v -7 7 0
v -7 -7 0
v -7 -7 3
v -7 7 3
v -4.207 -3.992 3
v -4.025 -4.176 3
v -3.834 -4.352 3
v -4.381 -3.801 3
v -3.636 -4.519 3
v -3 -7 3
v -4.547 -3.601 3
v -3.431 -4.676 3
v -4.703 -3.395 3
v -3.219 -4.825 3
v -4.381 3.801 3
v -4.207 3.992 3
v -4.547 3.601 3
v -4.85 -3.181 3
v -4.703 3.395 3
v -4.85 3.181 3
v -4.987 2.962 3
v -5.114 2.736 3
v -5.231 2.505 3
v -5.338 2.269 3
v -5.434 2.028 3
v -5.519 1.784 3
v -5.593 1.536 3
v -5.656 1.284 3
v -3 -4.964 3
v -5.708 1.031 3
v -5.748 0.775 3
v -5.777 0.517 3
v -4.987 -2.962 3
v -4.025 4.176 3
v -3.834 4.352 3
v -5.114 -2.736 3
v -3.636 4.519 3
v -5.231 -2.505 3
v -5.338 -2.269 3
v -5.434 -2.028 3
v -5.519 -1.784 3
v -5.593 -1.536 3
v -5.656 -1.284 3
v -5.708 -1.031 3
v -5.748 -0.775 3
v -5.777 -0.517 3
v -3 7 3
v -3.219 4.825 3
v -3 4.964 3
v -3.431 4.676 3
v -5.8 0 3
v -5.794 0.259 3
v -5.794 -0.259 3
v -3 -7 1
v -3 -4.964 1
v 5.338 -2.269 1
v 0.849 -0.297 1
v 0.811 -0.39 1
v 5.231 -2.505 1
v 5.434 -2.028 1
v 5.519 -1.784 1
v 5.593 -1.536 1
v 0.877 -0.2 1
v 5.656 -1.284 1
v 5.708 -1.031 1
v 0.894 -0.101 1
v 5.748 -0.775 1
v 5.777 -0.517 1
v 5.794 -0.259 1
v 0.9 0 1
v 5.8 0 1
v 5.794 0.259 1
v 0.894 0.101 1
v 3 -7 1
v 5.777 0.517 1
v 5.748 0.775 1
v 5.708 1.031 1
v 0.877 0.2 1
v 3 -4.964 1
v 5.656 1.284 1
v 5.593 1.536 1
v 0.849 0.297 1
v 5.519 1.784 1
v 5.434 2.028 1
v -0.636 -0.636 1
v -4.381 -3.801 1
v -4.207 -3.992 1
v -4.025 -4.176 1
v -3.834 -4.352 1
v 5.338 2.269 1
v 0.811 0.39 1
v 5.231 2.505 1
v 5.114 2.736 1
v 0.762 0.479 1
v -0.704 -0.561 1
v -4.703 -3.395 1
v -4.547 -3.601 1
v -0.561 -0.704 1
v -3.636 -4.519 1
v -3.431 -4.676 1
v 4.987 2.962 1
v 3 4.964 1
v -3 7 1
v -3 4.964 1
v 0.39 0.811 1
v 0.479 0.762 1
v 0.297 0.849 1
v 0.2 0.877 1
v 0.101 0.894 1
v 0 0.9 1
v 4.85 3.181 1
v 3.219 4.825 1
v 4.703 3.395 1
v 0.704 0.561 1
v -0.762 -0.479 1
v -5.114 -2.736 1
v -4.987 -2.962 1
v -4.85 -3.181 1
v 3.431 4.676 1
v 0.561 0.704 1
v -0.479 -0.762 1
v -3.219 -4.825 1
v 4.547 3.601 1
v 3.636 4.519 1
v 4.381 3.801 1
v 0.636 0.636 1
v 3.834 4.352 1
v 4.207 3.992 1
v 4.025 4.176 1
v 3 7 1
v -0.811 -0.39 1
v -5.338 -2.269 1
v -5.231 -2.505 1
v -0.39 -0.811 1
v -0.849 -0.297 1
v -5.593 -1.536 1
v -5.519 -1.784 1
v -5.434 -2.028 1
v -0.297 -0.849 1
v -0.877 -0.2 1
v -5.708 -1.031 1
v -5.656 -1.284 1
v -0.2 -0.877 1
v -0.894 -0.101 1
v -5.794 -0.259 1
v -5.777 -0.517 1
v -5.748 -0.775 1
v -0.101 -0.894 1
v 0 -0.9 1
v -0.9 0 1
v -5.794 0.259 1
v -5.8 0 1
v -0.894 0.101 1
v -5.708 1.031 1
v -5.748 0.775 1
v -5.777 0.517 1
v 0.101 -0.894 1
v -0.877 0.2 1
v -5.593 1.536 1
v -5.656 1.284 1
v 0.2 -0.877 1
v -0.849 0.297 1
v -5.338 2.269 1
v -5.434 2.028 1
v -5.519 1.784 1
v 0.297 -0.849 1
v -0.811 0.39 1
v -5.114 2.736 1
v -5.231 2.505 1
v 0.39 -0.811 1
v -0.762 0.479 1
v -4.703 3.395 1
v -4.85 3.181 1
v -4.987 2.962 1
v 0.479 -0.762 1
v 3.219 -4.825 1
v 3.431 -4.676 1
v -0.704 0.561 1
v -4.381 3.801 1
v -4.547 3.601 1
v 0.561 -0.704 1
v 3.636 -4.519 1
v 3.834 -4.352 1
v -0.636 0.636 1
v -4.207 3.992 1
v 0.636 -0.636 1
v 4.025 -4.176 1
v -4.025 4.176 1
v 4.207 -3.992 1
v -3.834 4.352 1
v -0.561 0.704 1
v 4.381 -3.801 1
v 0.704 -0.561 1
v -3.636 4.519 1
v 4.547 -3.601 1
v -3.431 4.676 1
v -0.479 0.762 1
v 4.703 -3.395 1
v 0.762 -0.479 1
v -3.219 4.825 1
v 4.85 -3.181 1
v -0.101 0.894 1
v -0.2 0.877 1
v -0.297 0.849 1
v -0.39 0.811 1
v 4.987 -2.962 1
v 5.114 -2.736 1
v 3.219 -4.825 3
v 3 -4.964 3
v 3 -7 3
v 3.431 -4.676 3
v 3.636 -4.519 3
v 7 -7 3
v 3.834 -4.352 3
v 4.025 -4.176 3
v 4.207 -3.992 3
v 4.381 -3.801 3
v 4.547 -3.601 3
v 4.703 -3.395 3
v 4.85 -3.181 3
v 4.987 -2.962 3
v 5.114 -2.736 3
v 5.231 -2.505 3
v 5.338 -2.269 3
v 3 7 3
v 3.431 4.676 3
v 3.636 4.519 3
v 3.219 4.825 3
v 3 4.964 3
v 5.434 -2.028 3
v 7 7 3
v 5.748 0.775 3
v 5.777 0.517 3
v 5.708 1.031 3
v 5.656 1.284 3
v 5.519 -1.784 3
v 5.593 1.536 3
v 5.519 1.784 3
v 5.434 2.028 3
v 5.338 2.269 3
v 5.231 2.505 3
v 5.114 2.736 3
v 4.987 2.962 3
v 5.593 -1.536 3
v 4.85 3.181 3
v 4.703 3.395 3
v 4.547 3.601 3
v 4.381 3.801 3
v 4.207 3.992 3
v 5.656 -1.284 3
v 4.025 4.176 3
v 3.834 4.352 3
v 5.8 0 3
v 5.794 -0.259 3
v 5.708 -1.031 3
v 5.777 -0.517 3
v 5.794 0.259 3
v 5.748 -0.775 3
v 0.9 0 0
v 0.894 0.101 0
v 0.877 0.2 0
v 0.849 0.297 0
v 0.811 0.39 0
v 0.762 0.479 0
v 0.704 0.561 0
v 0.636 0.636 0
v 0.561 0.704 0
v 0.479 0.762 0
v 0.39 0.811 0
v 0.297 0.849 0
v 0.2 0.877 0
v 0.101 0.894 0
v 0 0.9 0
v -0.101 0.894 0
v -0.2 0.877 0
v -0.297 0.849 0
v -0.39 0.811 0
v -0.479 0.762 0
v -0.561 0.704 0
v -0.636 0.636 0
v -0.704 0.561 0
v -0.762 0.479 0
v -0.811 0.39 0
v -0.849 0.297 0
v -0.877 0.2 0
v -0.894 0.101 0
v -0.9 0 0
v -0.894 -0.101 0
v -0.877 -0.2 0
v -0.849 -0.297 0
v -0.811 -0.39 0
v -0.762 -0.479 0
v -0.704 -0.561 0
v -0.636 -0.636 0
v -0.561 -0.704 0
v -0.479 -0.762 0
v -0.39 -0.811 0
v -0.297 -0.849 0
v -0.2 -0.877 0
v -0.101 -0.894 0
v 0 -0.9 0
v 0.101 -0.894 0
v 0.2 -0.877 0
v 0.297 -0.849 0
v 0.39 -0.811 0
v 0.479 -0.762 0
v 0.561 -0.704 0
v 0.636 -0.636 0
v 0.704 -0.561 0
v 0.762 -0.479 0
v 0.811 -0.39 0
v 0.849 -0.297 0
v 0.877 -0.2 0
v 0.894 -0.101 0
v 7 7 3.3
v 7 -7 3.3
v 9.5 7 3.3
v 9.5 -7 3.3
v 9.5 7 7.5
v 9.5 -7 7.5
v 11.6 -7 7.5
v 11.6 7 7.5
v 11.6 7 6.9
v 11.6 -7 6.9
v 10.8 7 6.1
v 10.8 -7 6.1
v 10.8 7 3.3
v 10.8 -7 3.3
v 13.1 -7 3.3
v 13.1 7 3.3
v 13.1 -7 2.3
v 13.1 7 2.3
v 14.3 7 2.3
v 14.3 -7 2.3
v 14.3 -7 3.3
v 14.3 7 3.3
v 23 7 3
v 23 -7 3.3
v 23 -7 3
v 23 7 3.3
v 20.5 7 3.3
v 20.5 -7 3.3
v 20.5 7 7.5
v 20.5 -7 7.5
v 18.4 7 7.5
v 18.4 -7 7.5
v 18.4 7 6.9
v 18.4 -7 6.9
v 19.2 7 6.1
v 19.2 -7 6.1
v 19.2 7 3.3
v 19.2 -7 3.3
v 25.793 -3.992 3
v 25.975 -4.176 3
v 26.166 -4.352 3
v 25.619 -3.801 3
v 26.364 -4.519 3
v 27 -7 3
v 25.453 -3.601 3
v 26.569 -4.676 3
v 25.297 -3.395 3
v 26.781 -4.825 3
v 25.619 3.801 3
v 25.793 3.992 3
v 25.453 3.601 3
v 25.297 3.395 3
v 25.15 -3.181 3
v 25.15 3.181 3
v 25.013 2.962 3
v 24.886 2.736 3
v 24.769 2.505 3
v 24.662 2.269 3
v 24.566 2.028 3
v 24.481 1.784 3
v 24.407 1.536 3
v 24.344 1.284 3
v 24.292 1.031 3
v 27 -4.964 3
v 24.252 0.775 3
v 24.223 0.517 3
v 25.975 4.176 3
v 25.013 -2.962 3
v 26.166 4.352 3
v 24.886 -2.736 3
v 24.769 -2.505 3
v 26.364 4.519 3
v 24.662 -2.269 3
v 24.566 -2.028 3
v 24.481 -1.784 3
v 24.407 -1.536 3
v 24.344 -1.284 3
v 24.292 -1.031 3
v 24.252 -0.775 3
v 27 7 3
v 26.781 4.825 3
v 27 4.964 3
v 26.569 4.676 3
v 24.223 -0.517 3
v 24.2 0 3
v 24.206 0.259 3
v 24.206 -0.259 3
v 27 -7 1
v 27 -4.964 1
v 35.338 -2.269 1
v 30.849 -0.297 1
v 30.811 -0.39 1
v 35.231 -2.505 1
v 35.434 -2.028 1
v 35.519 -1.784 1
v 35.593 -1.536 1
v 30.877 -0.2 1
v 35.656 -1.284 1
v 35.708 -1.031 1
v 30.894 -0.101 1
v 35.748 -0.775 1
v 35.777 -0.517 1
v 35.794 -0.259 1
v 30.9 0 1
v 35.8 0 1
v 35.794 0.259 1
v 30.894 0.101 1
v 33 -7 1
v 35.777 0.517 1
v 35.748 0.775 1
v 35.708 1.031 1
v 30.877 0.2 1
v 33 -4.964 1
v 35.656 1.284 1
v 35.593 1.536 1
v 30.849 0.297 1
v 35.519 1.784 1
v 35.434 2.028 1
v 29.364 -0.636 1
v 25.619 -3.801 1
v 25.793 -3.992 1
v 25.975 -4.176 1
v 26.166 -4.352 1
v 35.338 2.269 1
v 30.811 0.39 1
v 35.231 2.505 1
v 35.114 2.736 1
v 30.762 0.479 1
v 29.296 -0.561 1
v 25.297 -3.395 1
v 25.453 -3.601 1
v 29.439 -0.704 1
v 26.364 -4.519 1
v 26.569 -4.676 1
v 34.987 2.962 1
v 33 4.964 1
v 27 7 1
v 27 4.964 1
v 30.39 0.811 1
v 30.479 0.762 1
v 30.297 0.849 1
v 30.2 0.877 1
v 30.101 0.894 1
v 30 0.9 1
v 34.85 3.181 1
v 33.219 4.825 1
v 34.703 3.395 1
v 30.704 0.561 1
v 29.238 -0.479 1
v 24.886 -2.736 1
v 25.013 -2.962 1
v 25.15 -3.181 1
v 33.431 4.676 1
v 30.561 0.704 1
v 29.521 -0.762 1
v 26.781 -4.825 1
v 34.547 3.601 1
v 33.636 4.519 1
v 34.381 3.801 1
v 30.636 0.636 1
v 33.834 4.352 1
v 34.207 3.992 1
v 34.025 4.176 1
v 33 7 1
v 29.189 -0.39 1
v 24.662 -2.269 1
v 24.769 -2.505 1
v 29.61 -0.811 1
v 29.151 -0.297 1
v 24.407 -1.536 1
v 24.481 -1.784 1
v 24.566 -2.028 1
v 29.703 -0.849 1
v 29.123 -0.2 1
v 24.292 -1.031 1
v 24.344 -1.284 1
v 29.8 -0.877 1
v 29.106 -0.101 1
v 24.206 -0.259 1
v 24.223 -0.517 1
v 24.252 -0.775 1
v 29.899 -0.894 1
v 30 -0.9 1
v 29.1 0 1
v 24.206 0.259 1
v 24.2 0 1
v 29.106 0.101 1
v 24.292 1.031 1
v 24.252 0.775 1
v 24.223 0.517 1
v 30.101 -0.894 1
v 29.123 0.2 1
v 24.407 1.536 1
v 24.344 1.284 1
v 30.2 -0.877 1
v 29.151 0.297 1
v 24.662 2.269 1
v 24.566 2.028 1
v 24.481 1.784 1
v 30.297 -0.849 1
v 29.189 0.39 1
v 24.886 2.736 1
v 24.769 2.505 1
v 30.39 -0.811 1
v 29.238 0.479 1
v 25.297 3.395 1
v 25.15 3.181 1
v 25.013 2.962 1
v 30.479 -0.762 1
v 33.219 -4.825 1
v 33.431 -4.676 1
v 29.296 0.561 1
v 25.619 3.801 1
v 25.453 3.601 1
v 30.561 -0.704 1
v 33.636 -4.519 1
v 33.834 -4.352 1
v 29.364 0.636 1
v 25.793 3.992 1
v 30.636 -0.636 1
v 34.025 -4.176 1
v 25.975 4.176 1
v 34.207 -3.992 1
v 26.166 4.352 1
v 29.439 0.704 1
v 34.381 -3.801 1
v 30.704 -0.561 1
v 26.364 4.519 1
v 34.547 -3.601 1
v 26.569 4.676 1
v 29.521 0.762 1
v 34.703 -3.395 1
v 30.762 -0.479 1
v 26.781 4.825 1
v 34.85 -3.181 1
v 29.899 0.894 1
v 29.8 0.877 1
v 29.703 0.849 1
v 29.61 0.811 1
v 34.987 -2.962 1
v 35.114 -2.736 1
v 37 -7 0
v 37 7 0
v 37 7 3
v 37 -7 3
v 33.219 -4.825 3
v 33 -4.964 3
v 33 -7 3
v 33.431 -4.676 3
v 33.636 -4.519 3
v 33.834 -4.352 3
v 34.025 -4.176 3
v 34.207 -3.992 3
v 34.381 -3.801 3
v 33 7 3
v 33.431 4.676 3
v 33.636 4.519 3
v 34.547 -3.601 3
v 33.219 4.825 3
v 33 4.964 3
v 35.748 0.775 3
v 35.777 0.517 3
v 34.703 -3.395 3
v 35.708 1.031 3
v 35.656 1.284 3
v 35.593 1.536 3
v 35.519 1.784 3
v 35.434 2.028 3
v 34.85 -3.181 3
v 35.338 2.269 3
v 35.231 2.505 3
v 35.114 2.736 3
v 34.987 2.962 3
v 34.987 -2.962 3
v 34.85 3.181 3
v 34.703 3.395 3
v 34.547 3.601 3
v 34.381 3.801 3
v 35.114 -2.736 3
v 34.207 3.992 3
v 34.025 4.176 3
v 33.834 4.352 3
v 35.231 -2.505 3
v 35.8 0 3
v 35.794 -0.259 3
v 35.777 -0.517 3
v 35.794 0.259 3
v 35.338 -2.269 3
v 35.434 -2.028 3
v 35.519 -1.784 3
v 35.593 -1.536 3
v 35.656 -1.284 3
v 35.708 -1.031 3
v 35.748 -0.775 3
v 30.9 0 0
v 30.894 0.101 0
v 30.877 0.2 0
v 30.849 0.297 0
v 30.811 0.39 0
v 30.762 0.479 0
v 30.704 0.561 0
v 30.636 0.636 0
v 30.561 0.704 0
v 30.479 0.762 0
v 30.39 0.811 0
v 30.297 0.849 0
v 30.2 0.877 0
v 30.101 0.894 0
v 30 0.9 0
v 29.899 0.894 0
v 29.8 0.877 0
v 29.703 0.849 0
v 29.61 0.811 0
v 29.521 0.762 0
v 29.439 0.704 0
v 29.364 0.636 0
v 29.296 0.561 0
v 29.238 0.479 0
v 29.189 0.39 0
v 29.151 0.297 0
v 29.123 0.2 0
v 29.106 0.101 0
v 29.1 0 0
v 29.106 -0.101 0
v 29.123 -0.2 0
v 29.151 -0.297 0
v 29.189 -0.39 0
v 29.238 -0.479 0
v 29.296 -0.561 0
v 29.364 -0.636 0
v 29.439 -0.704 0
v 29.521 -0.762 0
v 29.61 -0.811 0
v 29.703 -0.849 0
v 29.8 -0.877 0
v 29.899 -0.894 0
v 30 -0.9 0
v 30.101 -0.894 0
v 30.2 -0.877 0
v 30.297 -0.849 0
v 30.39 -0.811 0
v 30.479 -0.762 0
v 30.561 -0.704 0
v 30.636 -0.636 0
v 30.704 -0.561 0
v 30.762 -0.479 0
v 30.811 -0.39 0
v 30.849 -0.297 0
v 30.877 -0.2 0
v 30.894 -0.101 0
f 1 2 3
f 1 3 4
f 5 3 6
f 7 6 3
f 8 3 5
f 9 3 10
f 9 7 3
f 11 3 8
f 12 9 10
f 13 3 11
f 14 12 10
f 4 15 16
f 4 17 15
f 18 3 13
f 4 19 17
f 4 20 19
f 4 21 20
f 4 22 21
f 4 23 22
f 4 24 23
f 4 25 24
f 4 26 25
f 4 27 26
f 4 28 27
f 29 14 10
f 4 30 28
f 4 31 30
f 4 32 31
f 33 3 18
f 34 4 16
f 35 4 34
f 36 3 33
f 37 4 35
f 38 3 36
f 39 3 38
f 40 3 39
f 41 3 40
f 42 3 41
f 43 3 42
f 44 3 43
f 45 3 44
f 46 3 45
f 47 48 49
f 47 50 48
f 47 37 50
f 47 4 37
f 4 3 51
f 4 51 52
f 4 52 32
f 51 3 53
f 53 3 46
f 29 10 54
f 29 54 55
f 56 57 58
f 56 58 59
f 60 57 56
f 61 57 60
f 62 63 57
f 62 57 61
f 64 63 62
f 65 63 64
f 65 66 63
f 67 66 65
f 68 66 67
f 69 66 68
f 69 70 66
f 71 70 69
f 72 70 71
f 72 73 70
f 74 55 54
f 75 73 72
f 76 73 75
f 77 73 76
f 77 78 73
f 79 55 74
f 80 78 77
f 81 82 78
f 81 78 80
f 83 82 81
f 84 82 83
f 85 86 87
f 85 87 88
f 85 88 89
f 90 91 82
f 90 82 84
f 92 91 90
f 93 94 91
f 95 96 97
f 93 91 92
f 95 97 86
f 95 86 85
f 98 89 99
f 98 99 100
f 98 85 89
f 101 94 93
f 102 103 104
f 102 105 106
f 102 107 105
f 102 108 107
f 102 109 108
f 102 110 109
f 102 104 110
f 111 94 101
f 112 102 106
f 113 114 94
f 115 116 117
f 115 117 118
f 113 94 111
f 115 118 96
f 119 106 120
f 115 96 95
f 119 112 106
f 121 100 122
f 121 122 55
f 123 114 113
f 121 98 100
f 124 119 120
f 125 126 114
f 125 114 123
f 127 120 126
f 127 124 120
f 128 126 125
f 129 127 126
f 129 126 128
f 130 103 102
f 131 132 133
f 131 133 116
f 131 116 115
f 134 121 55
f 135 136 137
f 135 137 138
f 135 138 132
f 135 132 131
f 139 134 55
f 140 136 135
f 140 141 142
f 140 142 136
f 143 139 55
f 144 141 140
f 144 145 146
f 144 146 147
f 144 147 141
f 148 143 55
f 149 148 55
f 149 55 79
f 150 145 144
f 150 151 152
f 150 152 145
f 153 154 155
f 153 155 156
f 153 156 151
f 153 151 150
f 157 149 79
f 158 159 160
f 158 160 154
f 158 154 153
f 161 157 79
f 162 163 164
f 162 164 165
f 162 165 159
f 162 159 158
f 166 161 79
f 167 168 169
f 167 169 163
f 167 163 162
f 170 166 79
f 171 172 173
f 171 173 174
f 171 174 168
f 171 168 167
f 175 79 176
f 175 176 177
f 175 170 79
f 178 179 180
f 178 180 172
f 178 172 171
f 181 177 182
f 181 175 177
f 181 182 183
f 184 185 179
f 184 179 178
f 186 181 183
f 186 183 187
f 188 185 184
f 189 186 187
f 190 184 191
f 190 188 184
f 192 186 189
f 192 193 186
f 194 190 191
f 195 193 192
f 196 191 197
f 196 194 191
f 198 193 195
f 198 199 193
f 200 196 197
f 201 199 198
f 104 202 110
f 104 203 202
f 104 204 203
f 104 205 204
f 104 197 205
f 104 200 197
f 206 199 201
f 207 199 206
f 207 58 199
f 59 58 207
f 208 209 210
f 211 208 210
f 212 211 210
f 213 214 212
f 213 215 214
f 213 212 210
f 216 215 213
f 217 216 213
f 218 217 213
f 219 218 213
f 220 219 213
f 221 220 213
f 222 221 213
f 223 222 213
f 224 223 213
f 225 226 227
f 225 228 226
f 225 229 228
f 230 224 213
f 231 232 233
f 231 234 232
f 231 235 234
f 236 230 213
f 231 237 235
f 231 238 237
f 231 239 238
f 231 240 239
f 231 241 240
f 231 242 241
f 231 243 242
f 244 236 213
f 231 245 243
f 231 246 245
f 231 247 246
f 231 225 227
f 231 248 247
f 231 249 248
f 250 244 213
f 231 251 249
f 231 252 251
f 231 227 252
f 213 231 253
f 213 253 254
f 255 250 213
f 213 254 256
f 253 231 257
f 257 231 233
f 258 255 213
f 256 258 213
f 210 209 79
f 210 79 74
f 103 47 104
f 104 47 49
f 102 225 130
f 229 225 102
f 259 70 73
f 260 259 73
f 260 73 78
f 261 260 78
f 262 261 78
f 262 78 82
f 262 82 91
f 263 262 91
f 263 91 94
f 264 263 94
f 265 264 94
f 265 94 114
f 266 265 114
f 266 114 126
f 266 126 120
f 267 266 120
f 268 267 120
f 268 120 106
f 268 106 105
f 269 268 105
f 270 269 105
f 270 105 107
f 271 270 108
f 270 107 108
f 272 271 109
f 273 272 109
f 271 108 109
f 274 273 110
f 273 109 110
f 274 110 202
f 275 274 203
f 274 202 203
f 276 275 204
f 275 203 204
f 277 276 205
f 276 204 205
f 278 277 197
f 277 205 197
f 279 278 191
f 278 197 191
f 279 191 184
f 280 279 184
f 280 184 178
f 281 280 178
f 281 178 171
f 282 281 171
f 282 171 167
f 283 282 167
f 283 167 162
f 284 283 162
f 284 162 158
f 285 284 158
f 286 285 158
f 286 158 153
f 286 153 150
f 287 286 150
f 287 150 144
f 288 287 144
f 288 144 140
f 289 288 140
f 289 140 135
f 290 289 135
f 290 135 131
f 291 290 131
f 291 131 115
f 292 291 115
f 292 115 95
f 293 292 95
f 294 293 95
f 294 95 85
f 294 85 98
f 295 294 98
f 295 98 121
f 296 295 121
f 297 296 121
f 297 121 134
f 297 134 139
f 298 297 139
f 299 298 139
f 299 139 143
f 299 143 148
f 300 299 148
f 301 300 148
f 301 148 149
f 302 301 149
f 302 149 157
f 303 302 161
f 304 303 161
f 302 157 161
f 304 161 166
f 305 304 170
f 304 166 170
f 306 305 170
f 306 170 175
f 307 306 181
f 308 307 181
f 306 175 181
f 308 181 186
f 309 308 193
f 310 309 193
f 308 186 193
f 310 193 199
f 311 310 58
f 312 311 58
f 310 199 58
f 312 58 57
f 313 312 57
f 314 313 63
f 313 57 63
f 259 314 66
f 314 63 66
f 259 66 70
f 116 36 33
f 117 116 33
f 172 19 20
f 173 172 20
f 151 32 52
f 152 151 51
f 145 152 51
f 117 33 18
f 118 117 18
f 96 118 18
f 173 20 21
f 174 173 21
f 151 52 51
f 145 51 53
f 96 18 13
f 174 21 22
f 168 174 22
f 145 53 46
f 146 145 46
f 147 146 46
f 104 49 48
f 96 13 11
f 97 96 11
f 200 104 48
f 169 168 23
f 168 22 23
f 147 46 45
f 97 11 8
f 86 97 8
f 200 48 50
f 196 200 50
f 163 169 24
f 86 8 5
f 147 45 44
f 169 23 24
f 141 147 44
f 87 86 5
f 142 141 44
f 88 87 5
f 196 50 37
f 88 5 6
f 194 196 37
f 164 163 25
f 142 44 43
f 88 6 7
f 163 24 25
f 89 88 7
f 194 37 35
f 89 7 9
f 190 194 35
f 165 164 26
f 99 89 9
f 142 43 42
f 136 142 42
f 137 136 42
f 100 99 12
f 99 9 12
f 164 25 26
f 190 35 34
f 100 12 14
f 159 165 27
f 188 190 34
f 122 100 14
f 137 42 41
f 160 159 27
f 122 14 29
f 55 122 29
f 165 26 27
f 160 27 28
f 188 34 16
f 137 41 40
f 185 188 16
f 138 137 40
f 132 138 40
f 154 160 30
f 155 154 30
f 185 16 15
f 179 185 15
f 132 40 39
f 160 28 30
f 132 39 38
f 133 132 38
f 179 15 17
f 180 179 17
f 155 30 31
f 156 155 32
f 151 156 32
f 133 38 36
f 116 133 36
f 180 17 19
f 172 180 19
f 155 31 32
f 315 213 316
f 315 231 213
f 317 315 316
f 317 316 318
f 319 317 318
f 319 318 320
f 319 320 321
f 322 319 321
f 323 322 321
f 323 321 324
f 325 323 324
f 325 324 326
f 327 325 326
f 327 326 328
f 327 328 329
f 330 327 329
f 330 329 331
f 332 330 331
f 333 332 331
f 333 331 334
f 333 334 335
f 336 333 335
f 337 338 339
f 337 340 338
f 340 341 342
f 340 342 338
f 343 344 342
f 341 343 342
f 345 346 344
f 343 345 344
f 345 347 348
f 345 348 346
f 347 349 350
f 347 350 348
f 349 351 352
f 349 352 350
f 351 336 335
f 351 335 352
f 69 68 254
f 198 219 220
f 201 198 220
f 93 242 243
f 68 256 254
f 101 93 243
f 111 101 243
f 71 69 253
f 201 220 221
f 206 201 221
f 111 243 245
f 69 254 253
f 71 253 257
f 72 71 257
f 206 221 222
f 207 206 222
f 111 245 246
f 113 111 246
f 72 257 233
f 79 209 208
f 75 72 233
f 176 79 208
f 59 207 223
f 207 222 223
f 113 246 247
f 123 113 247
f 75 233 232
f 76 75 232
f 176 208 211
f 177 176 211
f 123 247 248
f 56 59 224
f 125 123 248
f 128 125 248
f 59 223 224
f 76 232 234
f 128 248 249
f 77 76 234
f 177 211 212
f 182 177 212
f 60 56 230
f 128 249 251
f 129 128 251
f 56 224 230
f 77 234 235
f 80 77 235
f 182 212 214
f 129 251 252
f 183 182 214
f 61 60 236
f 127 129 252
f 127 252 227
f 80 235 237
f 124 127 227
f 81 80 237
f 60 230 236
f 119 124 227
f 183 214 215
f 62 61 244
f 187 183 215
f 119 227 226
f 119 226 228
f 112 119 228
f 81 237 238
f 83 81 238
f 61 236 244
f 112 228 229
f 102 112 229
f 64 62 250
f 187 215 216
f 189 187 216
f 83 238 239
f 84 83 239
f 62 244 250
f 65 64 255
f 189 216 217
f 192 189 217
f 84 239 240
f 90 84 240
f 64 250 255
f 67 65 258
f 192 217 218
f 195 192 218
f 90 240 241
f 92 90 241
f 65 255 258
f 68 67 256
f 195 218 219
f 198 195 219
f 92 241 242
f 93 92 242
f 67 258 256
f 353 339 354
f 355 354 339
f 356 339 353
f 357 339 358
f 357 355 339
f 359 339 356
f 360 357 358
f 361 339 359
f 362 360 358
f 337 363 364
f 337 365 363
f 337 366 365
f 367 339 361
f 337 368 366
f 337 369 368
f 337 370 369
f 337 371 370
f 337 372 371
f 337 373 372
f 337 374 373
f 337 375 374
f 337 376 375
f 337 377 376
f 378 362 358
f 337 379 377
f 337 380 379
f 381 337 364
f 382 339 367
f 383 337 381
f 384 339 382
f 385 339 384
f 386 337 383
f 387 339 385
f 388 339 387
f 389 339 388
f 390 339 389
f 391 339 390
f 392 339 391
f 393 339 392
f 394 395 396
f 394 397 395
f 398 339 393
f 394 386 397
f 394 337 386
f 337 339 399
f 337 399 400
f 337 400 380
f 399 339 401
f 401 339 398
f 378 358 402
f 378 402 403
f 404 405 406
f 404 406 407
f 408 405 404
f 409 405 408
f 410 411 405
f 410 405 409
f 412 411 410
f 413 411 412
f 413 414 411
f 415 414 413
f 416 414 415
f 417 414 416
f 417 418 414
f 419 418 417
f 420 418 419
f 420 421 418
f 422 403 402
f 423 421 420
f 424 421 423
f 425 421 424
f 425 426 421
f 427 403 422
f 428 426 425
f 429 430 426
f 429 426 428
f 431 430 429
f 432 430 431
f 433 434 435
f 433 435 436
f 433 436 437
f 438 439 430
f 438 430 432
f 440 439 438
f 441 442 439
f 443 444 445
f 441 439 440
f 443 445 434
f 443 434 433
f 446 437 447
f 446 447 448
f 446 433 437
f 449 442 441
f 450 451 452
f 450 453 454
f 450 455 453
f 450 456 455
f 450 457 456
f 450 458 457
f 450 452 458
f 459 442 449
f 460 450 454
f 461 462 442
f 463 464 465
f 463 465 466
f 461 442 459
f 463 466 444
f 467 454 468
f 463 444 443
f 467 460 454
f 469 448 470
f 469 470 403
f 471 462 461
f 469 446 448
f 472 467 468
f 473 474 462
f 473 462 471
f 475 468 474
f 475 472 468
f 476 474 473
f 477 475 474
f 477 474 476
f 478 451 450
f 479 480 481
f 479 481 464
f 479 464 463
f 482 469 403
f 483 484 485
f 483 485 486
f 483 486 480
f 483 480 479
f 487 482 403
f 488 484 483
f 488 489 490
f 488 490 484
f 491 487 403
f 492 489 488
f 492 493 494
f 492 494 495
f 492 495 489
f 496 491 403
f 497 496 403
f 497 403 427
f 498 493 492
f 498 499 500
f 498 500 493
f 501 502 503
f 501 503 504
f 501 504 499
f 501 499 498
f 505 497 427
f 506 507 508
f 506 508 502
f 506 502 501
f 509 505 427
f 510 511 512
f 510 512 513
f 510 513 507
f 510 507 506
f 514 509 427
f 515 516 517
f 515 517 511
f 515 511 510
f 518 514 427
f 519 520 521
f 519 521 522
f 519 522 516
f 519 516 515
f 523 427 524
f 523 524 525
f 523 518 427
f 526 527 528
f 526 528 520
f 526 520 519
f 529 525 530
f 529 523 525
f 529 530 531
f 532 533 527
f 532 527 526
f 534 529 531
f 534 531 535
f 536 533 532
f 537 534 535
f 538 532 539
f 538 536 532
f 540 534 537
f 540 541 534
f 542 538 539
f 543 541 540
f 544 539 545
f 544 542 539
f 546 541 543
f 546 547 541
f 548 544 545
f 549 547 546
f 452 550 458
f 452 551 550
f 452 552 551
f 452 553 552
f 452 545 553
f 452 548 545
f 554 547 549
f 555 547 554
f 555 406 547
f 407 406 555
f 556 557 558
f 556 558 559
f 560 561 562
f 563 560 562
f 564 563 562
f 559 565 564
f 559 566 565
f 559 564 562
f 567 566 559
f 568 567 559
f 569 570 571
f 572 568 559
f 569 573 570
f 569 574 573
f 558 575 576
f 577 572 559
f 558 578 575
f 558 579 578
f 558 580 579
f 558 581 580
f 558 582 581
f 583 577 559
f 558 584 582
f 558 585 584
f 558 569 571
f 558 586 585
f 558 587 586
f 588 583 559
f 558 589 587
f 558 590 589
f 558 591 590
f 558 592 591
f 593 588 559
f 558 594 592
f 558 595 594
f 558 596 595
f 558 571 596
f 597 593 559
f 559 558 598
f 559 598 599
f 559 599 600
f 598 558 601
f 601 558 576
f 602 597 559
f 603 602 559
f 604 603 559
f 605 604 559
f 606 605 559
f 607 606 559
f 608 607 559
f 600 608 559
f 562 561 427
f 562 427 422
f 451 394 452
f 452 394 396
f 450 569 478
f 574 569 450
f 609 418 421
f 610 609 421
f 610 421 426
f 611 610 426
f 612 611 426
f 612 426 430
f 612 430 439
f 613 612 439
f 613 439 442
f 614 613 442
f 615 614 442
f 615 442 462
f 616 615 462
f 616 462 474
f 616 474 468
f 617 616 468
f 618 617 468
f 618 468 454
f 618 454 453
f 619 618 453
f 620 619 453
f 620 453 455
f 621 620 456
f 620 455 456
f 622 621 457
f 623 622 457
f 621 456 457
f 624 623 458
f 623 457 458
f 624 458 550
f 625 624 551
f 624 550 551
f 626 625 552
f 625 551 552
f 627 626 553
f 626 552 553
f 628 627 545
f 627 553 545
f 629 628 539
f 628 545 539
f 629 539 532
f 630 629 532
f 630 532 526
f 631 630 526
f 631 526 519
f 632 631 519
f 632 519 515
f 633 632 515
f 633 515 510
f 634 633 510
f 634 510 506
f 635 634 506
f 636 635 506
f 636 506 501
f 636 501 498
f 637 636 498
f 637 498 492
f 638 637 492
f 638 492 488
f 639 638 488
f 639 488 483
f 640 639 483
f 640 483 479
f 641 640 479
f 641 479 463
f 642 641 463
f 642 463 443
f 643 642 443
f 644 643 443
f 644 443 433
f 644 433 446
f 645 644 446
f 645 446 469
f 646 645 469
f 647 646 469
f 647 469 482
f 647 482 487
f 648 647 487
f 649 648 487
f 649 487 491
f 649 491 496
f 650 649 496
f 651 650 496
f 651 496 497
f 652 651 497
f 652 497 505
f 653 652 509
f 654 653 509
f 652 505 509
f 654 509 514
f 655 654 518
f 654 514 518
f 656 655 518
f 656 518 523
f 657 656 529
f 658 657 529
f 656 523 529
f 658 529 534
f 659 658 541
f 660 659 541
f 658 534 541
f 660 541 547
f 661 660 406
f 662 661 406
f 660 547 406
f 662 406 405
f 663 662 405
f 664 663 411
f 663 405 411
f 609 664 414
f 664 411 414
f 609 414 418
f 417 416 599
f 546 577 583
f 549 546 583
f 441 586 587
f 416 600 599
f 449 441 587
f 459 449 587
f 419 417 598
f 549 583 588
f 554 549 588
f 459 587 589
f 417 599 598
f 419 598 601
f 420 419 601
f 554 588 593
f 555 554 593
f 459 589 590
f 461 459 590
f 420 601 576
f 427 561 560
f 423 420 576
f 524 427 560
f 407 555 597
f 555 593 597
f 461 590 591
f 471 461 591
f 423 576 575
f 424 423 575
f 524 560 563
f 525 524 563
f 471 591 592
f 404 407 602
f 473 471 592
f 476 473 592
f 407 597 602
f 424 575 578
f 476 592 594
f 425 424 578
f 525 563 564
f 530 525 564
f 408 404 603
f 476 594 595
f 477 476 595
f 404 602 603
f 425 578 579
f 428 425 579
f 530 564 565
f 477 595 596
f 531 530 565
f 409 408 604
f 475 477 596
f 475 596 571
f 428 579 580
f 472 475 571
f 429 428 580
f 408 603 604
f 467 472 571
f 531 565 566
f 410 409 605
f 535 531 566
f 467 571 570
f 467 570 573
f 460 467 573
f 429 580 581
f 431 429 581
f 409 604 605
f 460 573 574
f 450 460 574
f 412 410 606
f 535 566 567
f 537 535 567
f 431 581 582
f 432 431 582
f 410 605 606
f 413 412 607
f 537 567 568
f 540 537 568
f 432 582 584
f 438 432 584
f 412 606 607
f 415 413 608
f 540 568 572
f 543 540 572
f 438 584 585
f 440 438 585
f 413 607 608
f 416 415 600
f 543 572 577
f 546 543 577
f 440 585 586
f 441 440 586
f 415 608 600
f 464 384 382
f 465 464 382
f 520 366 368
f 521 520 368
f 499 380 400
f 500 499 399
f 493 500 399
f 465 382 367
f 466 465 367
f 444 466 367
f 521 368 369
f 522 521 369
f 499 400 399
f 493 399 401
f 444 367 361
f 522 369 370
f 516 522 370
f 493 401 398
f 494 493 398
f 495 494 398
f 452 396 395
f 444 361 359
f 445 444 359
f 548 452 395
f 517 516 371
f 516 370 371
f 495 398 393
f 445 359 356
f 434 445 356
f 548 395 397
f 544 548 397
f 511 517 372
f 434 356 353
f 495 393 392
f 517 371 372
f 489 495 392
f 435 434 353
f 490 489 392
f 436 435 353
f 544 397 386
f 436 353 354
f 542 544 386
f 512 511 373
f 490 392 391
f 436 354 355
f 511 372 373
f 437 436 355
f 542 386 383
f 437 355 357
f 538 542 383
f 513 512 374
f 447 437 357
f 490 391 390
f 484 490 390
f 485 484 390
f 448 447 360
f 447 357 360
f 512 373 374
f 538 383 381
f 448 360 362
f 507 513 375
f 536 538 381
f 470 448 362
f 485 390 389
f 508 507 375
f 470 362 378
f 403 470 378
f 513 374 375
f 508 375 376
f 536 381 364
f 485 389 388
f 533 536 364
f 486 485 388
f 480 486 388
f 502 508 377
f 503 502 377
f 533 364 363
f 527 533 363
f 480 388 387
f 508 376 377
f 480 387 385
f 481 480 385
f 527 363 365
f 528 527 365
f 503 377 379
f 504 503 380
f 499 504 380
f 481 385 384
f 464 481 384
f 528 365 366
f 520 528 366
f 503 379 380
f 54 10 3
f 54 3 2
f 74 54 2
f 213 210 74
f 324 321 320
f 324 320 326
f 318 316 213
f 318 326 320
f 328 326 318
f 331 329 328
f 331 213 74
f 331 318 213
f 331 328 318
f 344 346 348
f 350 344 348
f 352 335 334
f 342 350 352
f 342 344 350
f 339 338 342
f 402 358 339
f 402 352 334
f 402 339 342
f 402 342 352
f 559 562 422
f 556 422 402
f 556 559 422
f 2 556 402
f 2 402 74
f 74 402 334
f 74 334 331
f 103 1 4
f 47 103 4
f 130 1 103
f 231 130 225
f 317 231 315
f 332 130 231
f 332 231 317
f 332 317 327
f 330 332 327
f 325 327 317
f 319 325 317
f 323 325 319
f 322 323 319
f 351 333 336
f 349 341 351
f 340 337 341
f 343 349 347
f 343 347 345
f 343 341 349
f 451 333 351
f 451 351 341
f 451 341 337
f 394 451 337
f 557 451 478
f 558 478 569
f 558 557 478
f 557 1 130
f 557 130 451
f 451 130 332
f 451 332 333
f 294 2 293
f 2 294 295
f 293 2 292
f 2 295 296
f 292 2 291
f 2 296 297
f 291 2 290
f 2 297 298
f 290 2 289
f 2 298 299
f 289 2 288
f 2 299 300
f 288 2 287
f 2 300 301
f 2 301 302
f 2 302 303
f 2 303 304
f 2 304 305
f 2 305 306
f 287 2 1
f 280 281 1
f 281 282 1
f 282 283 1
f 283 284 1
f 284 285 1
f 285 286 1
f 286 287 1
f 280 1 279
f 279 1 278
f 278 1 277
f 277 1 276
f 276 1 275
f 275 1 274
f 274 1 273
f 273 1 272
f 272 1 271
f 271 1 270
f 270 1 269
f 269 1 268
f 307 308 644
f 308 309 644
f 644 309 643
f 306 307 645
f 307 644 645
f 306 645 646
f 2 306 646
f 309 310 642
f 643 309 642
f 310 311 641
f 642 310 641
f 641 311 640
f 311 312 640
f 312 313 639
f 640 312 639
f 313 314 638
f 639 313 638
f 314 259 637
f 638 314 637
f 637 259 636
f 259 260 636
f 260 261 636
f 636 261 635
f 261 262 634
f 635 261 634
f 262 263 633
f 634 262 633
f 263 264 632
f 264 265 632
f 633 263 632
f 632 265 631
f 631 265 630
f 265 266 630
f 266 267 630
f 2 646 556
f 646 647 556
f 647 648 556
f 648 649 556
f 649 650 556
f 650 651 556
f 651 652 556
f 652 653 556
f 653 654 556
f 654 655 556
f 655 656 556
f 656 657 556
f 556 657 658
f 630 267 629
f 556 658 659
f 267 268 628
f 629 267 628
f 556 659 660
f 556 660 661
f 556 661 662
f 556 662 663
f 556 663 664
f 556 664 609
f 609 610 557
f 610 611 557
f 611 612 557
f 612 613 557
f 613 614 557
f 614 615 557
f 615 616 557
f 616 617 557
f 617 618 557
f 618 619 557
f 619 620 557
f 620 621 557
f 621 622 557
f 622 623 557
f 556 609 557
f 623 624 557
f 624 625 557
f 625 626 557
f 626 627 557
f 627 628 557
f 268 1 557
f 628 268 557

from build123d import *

# Parameters (mm, degrees)
PAD004_DEPTH          = 7
CLONE_PLACEMENT_ANGLE = -90
SKETCH009_W           = 14
SKETCH009_H           = 14
PAD003_DEPTH          = 3
POCKET006_DEPTH       = 2
SKETCH011_R           = 0.9
POCKET007_DEPTH       = 1.001


with BuildPart() as array:
    # Sketch012 → Pad004 (new body, symmetric)
    with BuildSketch(Plane.YZ):
        Polygon((-8, 0), (-8, 3.3), (-5.5, 3.3), (-5.5, 7.5), (-3.4, 7.5), (-3.4, 6.9), (-4.2, 6.1), (-4.2, 3.3), (-1.9, 3.3), (-1.9, 2.3), (-0.7, 2.3), (-0.7, 3.3), (4.2, 3.3), (4.2, 6.1), (3.4, 6.9), (3.4, 7.5), (5.5, 7.5), (5.5, 3.3), (8, 3.3), (8, 0), align=None)
    extrude(amount=PAD004_DEPTH, both=True)


with BuildPart() as array_1:
    # Clone placement: moved
    add(array.part.moved(Location((15, 0, 0))).rotate(Axis((15, 0, 0), (0, 0, 1)), CLONE_PLACEMENT_ANGLE))


with BuildPart() as pushpin_unit:
    # Sketch009 → Pad003 (new body)
    with BuildSketch(Plane.XY):
        Rectangle(SKETCH009_W, SKETCH009_H)
    extrude(amount=PAD003_DEPTH)

    # Sketch010 → Pocket006 (cut)
    with BuildSketch(Plane.XY.offset(3)):
        with BuildLine():
            Line((-3, 7), (-3, 4.963869))
            ThreePointArc((-3, 4.963869), (-5.8, 0), (-3, -4.963869))
            Line((-3, -7), (-3, -4.963869))
            Line((3, -7), (-3, -7))
            Line((3, -4.963869), (3, -7))
            ThreePointArc((3, -4.963869), (5.8, 0), (3, 4.963869))
            Line((3, 7), (3, 4.963869))
            Line((-3, 7), (3, 7))
        make_face()
    extrude(amount=-POCKET006_DEPTH, mode=Mode.SUBTRACT)

    # Sketch011 → Pocket007 (cut, through all)
    with BuildSketch(Plane.XY.offset(1)):
        Circle(SKETCH011_R)
    extrude(amount=-POCKET007_DEPTH, mode=Mode.SUBTRACT)


with BuildPart() as board_clamp_generic_fusion:
    # Clone008003 base: copy of pushpin-unit
    add(pushpin_unit.part)


with BuildPart() as board_clamp_generic_fusion_1:
    # Clone008003 placement: moved
    add(board_clamp_generic_fusion.part.moved(Location((30, 0, 0))))

    # Fusion: union Array, pushpin-unit
    add(array_1.part)
    add(pushpin_unit.part)


solid = board_clamp_generic_fusion_1.part
